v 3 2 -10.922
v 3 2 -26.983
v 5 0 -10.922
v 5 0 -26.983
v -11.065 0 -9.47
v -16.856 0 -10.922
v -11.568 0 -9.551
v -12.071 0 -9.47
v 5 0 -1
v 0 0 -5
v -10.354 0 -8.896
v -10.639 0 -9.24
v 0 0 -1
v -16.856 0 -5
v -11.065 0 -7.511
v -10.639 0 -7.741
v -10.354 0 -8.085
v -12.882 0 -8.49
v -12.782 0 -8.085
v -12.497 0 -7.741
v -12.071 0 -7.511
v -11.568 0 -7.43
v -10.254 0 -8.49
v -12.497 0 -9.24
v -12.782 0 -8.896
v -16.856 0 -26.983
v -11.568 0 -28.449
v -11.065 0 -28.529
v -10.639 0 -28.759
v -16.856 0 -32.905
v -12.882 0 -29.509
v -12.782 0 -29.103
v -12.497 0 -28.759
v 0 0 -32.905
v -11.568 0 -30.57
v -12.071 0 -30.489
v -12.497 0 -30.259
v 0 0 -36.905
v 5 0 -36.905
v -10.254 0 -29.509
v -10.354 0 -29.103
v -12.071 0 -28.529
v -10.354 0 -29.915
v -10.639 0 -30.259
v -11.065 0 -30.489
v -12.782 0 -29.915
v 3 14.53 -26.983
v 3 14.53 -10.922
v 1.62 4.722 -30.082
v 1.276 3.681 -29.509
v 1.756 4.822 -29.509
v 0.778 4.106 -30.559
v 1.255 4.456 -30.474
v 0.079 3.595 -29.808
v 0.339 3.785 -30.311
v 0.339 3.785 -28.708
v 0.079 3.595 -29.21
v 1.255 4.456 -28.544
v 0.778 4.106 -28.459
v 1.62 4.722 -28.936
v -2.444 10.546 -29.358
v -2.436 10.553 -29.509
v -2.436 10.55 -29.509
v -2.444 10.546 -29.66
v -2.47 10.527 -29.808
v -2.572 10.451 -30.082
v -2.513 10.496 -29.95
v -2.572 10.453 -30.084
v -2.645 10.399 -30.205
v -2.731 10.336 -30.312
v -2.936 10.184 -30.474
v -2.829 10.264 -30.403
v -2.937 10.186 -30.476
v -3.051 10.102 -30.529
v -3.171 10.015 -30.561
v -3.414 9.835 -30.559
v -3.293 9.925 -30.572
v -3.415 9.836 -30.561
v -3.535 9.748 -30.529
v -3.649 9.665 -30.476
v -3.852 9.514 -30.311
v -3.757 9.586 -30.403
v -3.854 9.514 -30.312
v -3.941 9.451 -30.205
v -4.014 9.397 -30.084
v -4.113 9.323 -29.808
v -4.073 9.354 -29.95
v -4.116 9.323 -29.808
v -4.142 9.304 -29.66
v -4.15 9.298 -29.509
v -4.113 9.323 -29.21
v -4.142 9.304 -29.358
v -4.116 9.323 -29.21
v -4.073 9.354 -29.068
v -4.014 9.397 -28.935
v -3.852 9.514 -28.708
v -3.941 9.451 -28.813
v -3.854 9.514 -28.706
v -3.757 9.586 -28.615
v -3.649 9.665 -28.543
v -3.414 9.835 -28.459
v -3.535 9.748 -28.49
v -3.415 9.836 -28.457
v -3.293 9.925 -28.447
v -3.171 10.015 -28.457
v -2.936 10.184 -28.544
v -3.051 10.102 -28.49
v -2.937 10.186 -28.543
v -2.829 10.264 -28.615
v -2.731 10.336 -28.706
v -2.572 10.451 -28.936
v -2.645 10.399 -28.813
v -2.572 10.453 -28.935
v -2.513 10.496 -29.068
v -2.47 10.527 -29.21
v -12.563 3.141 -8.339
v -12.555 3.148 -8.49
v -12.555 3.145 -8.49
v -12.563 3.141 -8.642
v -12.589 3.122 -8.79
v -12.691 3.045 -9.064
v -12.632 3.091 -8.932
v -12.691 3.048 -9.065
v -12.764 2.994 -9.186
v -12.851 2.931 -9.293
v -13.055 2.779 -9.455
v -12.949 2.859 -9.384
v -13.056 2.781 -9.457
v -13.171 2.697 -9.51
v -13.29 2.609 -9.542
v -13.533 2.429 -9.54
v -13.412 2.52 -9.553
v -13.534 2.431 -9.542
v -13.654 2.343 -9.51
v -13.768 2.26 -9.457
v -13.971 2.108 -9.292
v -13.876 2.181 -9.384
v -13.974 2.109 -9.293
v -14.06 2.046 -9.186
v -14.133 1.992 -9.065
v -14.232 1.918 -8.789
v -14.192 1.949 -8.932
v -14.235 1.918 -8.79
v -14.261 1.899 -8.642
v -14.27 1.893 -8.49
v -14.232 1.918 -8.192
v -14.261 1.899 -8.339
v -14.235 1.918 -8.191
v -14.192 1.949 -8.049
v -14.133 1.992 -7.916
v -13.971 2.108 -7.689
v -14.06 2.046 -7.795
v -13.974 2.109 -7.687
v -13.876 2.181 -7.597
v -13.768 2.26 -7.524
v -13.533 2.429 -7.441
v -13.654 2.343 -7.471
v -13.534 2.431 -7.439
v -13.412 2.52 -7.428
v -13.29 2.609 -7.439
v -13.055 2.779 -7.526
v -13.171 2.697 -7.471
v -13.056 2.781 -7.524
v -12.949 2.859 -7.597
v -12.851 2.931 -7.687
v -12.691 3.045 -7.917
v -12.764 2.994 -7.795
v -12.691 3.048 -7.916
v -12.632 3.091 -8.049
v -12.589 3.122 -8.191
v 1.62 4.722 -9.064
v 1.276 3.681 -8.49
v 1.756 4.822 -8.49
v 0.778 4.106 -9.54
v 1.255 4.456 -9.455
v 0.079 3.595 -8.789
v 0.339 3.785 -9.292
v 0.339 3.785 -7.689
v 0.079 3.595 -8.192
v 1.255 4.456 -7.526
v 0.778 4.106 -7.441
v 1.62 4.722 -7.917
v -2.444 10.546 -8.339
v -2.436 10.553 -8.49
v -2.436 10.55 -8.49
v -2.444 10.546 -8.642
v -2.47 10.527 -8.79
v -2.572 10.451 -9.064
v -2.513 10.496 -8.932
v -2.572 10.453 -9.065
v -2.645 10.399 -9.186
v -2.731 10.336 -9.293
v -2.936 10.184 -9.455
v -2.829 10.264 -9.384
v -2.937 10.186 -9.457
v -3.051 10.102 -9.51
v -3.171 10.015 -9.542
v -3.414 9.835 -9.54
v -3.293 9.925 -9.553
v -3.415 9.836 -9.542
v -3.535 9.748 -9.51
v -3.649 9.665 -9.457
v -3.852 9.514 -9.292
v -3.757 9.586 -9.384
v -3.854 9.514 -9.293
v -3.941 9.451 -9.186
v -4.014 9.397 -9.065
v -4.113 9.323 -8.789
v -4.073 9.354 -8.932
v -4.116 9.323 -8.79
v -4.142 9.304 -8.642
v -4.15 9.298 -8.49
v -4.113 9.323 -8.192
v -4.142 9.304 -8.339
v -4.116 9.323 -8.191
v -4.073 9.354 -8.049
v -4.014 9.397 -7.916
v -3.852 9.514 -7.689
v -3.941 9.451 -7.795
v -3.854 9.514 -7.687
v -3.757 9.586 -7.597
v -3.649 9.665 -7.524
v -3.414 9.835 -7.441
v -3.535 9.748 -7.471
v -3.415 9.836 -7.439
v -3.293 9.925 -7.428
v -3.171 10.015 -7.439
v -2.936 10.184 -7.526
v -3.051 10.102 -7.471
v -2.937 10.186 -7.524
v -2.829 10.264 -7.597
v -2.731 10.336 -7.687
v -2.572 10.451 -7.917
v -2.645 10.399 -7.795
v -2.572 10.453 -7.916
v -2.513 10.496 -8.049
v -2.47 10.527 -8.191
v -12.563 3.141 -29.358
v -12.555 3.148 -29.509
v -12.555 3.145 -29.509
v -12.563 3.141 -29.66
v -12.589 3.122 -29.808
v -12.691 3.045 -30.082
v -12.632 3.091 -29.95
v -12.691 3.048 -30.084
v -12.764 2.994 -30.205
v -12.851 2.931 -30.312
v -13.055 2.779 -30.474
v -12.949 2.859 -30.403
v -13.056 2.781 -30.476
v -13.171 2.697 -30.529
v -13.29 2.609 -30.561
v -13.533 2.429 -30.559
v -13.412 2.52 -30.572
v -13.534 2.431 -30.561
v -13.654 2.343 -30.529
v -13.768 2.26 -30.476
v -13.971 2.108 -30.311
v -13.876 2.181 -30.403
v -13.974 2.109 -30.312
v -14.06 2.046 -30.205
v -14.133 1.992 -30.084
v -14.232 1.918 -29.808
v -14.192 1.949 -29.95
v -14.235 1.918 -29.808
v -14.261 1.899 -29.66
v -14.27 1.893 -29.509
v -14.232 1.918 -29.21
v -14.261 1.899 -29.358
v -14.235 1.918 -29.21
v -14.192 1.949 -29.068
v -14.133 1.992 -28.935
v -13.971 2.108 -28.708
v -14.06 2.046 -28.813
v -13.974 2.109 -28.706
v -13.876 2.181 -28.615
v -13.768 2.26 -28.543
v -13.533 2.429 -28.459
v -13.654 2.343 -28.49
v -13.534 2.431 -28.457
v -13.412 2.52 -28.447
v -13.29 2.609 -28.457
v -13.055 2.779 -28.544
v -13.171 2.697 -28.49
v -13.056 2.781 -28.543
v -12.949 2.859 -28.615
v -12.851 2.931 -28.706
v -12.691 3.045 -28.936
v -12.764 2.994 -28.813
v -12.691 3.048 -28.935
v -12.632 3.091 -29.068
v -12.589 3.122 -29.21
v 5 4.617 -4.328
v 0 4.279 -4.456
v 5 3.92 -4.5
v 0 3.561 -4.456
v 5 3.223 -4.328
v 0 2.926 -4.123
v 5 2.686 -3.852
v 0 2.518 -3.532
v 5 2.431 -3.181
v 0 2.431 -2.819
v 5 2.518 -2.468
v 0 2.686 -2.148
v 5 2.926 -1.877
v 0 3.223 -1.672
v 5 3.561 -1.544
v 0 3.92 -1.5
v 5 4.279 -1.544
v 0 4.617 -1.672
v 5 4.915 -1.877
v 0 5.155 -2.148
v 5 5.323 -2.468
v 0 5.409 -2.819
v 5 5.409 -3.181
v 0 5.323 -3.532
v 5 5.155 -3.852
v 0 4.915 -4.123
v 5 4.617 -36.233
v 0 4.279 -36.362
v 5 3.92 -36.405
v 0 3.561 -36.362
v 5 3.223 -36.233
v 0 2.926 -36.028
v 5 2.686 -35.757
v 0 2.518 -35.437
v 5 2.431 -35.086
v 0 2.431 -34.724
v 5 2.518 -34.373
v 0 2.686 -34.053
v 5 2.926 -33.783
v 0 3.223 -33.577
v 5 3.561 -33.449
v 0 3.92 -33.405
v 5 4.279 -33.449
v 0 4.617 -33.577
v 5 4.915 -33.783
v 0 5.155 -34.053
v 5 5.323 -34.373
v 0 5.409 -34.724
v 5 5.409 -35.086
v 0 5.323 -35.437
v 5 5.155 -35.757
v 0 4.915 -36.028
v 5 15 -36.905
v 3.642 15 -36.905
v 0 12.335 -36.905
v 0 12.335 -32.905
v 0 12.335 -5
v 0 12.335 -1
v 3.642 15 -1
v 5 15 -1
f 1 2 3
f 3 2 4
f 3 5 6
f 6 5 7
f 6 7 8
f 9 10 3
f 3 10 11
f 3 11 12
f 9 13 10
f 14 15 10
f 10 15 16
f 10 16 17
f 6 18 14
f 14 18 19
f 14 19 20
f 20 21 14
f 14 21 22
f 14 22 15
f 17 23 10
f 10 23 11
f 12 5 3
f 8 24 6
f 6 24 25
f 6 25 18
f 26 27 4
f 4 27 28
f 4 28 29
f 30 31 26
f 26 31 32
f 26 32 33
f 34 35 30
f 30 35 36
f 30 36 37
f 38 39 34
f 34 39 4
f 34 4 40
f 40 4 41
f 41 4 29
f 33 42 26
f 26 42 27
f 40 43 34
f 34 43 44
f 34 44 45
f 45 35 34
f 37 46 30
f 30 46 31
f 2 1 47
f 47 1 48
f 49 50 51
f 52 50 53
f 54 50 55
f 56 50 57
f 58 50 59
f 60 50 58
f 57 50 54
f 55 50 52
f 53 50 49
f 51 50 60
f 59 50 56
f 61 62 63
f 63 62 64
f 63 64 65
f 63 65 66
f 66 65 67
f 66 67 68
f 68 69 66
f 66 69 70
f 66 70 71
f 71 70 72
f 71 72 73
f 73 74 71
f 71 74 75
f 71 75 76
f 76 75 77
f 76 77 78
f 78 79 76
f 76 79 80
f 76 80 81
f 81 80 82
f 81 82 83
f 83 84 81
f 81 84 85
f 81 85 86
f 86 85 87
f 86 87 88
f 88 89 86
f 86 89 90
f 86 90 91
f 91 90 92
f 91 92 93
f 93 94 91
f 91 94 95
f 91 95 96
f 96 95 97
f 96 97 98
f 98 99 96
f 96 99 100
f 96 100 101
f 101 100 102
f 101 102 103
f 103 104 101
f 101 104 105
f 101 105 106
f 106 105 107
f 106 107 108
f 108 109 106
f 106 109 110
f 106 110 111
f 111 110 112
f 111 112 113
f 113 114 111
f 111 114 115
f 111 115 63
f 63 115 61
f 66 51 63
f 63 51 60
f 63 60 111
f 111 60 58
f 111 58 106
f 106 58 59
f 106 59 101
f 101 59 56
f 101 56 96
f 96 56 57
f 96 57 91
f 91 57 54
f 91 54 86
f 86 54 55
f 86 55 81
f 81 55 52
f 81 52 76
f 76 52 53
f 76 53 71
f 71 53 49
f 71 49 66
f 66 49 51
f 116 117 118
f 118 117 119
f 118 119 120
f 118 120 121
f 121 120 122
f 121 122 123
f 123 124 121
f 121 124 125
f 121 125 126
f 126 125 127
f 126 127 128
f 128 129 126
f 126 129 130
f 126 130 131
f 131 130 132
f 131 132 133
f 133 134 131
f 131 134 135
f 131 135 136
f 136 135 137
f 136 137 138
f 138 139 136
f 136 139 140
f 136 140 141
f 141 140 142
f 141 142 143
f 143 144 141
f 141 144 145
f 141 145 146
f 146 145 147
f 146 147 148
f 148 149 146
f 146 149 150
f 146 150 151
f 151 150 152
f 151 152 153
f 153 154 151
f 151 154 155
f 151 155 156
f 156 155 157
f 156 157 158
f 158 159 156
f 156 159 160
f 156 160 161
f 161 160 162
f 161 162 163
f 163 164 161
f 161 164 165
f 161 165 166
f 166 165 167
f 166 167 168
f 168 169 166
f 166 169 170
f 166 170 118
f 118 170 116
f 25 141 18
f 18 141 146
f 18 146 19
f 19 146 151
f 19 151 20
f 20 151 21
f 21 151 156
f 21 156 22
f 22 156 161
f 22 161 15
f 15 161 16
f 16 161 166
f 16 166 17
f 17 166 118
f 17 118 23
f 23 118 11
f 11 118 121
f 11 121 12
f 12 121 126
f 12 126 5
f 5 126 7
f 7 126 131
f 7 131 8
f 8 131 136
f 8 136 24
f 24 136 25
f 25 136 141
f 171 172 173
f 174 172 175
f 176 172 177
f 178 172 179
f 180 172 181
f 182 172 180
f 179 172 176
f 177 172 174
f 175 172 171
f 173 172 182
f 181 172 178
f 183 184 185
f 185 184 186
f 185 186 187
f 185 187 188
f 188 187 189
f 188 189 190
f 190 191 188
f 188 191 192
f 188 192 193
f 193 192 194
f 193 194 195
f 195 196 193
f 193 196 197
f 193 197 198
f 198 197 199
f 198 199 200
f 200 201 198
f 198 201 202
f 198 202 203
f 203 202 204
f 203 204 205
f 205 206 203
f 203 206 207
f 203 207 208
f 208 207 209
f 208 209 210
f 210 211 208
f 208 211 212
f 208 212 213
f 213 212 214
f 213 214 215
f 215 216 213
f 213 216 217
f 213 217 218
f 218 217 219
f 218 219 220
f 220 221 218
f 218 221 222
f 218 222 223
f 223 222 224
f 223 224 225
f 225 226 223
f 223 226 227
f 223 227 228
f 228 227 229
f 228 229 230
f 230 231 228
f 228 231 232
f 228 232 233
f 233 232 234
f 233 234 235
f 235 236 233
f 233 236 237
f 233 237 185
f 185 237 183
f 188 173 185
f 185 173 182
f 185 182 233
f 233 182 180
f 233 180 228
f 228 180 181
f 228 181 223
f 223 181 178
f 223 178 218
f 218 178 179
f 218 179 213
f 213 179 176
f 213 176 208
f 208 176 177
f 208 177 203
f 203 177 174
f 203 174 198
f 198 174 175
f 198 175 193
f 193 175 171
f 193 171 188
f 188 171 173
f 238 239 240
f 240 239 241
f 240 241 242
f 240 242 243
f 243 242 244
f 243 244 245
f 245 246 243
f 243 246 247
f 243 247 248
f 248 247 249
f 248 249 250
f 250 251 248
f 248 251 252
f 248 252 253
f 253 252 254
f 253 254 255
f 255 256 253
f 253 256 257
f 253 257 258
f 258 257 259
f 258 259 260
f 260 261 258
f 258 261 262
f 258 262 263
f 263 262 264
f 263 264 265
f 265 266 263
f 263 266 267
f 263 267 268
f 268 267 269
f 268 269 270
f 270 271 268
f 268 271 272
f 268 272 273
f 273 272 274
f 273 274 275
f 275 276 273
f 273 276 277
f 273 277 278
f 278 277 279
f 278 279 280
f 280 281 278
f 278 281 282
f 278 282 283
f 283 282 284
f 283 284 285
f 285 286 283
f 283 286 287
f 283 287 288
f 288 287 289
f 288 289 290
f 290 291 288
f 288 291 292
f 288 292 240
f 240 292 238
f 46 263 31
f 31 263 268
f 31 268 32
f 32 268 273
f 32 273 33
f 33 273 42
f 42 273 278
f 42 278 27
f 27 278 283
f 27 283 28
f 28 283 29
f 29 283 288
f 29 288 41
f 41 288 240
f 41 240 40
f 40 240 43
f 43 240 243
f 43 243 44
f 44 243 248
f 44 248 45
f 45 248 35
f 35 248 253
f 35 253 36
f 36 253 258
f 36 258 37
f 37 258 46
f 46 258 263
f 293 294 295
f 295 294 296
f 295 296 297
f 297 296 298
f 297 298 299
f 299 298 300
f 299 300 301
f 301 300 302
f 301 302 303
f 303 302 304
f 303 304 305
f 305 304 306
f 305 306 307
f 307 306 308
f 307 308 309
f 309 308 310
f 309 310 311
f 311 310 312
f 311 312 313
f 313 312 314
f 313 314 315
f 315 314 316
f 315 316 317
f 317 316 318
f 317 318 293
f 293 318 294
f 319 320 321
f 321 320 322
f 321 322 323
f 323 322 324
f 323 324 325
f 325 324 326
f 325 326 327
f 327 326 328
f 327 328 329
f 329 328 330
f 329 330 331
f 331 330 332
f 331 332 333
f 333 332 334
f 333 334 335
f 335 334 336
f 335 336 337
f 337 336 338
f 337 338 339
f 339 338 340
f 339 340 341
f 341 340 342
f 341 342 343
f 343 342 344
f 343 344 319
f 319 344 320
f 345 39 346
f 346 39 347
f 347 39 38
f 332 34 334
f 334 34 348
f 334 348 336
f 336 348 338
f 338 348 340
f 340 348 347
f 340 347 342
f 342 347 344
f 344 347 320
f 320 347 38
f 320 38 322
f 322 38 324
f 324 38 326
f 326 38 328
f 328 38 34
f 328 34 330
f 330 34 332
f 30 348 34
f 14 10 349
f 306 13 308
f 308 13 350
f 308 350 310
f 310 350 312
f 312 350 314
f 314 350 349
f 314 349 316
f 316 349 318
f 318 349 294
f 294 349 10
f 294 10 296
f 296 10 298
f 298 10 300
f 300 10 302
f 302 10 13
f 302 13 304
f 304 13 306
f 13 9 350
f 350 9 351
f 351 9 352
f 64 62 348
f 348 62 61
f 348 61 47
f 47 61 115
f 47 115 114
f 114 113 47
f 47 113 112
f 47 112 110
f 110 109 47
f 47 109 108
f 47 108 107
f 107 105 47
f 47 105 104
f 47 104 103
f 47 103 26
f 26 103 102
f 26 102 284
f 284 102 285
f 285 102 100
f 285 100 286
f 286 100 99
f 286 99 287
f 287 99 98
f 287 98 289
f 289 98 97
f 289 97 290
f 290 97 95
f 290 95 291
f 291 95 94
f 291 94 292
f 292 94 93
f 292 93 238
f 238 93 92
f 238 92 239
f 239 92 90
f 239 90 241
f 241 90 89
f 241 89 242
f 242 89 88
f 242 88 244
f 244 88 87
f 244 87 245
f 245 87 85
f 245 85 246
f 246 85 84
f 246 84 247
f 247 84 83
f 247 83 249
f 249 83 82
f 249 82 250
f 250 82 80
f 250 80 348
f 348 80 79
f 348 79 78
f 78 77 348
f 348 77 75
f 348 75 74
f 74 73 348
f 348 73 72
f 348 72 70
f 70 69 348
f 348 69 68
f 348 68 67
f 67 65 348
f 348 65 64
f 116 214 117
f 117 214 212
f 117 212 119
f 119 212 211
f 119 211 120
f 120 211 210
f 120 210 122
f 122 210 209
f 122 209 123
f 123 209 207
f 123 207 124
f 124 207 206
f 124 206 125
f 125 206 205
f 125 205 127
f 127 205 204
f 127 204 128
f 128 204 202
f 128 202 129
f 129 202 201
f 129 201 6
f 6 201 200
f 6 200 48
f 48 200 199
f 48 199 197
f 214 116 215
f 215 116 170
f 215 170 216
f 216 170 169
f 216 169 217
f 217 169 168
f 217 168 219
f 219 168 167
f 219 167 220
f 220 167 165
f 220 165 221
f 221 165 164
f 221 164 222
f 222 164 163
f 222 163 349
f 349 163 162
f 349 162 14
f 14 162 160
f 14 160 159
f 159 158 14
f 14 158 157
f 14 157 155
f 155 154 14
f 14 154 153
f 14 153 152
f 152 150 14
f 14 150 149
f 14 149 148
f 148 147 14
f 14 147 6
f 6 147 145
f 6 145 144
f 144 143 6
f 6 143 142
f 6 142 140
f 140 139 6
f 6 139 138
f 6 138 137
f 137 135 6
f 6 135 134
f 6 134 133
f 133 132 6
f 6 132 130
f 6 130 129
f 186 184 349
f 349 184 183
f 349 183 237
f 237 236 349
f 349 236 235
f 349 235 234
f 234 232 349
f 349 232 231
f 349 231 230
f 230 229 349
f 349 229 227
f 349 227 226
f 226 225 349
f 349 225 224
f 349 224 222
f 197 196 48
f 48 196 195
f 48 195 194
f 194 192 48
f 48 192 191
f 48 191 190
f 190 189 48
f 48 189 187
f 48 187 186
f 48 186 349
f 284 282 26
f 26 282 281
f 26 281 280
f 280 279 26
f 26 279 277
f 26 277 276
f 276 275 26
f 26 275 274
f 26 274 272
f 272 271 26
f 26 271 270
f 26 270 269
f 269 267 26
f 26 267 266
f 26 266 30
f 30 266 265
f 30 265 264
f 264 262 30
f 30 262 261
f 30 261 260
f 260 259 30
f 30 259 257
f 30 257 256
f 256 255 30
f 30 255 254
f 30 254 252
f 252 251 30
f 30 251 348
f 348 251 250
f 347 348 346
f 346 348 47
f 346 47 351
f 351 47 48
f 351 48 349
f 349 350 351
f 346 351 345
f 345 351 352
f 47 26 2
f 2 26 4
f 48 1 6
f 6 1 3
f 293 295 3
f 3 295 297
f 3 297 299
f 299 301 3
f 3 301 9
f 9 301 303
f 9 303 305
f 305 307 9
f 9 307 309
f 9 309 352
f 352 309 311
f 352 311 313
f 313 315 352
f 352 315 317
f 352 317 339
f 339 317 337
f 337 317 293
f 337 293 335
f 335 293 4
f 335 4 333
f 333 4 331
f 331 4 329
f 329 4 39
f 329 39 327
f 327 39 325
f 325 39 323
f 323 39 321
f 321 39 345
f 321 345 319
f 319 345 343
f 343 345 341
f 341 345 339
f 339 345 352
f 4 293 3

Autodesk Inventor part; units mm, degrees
ref_plane "YZ Plane" through (0, 0, 0) normal (1, 0, 0) x (0, 1, 0)
ref_plane "XZ Plane" through (0, 0, 0) normal (0, 1, 0) x (-1, 0, 0)
sketch "Sketch2" plane through (0, 0, 0) normal (0, 1, 0) x (-1, 0, 0)
  line L0 (0, 0) -> (23.273, 0)
  line L1 (23.273, 0) -> (23.273, -37.9053)
  line L2 (23.273, -37.9053) -> (0, -37.9053)
  line L3 (0, -37.9053) -> (0, 0)
  line L4 (26.75, 0) -> (-5, 0)
  line L5 (-5, 0) -> (-5, -37.9053)
  line L6 (-5, -37.9053) -> (26.75, -37.9053)
  line L7 (26.75, -37.9053) -> (26.75, 0)
  point P0 (0, -37.9053)
  dimension "d21" = 37.9053
  dimension "d22" = 23.273
  dimension "d36" = 5
  dimension "d37" = 31.75
extrude "Extrusion1" add sketch "Sketch2" along normal blind 15
sketch "Sketch6" plane through (-26.75, 0, 0) normal (0, 0, 1) x (1, 0, 0)
  line L0 (31.75, 0) -> (31.75, 15) projected
  line L1 (31.75, 0) -> (31.75, 15)
  line L2 (31.75, 0) -> (0, 0) projected
  line L3 (30.3918, 0) -> (30.3918, 15)
  line L4 (31.75, 15) -> (0, 15) projected
  line L5 (30.3918, 15) -> (55.3918, 15) construction
  line L6 (0, 0) -> (0, 15) projected
  line L7 (0, 0) -> (0, 0.5)
  line L8 (30.3918, 15) -> (9.894, 0)
  point P0 (26.75, 0)
  dimension "d38" = 1.3582
  dimension "d41" = 0.5
  dimension "d96" = 25.4
  dimension "d97" = 53.804
extrude "Extrusion2" cut sketch "Sketch6" against normal up to surface (37.9053 mm away) contours L8 L2 L6 L4
sketch "Sketch8" plane through (0, 0, 0) normal (0, -1, 0) x (1, 0, 0)
  line L0 (-26.75, -37.9053) -> (-26.75, 0) projected
  line L1 (-26.75, -10.922) -> (3, -10.922)
  line L2 (3, -10.922) -> (3, -26.9833)
  line L3 (3, -26.9833) -> (-26.75, -26.9833)
  line L4 (-26.75, -26.9833) -> (-26.75, -10.922)
  line L5 (-26.75, 0) -> (5, 0) projected
  line L6 (5, -37.9053) -> (-26.75, -37.9053) projected
  line L7 (5, 0) -> (5, -37.9053) projected
  point P0 (0, 0)
  point P1 (-26.75, -26.9833)
  dimension "d44" = 10.922
  dimension "d45" = 10.922
  dimension "d46" = 2
extrude "Extrusion3" cut sketch "Sketch8" against normal blind 25.4 contours L0 L1 L2 L3
ref_plane "Work Plane1" through (4.3209, 15, 0) normal (0, 1, 0) x (1, 0, 0)
sketch "Sketch12" plane through (0, 0, 0) normal (0, -1, 0) x (1, 0, 0)
  line L0 (3.6418, 0) -> (-26.75, 0) projected
  line L1 (-26.75, 0) -> (0, 0)
  line L2 (0, 0) -> (0, -5)
  line L3 (0, -5) -> (-26.75, -5)
  line L4 (-26.75, -5) -> (-26.75, 0)
  line L5 (-26.75, -37.9053) -> (0, -37.9053)
  line L6 (0, -37.9053) -> (0, -32.9053)
  line L7 (0, -32.9053) -> (-26.75, -32.9053)
  line L8 (-26.75, -32.9053) -> (-26.75, -37.9053)
  line L9 (5, 0) -> (0, 0)
  line L10 (0, 0) -> (0, -1)
  line L11 (0, -1) -> (5, -1)
  line L12 (5, -1) -> (5, 0)
  line L13 (5, 0) -> (5, -37.9053) projected
  line L14 (5, -37.9053) -> (0, -37.9053)
  line L15 (0, -37.9053) -> (0, -36.9053)
  line L16 (0, -36.9053) -> (5, -36.9053)
  line L17 (5, -36.9053) -> (5, -37.9053)
  line L18 (5, -37.9053) -> (-26.75, -37.9053) projected
  point P0 (0, -37.9053)
  dimension "d69" = 5
  dimension "d70" = 5
  dimension "d73" = 1
  dimension "d74" = 1
  dimension "d75" = 0
extrude "Extrusion6" cut sketch "Sketch12" along normal through all both and the other way through all
sketch "Sketch13" plane through (0, 0, -36.9053) normal (-1, 0, 0) x (0, 0, 1)
  circle A0 centre (2, 3.9204) radius 1.5
  circle A1 centre (33.9053, 3.9204) radius 1.5
  line L0 (35.9053, 0) -> (31.9053, 0) projected
  line L1 (31.9053, 7.8408) -> (35.9053, 7.8408) projected
  line L2 (35.9053, 12.335) -> (35.9053, 0) projected
  line L3 (31.9053, 2) -> (31.9053, 7.8408) projected
  line L4 (0, 0) -> (0, 12.335) projected
  line L5 (0, 7.8408) -> (4, 7.8408) projected
  line L6 (4, 0) -> (0, 0) projected
  point P0 (36.9053, 0)
  point P1 (35.9053, 8.636)
  point P2 (0, 8.636)
  dimension "d80" = 3
  dimension "d81" = 3
  dimension "d82" = 7.8408
  dimension "d83" = 3.9204
  dimension "d84" = 4
  dimension "d85" = 2
  dimension "d86" = 2
  dimension "d87" = 3.9204
  dimension "d88" = 31.9053
  dimension "d148" = 3.9204
extrude "Extrusion7" cut sketch "Sketch13" against normal blind 25.4
sketch "Sketch15" plane through (3, 14.5303, -10.922) normal (-0.5905512, 0.8070002, 0) x (0.8070002, 0.5905512, 0)
  circle A0 centre (-20.3372, -2.4315) radius 1.1146
  circle A1 centre (-7.798, 18.5871) radius 1.229
  line L0 (-20.3372, -2.4315) -> (-20.3372, 18.5871)
  line L1 (-20.3372, 18.5871) -> (-7.798, 18.5871)
  line L2 (-7.798, 18.5871) -> (-7.798, -2.4315)
  line L3 (-7.798, -2.4315) -> (-20.3372, -2.4315)
  line L4 (-12.87, 2.62) -> (-12.87, 13.4413)
  line L5 (-12.87, 13.4413) -> (-2.4234, 13.4413)
  line L6 (-2.4234, 13.4413) -> (-2.4234, 2.62)
  line L7 (-2.4234, 2.62) -> (-12.87, 2.62)
  line L8 (-22.1086, -4.4694) -> (-22.1086, 20.5306)
  line L9 (-22.1086, 20.5306) -> (1.8914, 20.5306)
  line L10 (1.8914, 20.5306) -> (1.8914, -4.4694)
  line L11 (1.8914, -4.4694) -> (-22.1086, -4.4694)
  line L12 (-3.7175, 21.9833) -> (-24.6047, 21.9833) projected
  line L13 (-24.6047, -5.922) -> (-3.7175, -5.922) projected
  circle A2 centre (-20.3372, 18.5871) radius 1.1245
  line L14 (0, 16.0613) -> (0, 0) projected
  line L15 (1.8914, -9.922) -> (1.8914, 25.9833) projected
  circle A3 centre (-7.798, -2.4315) radius 1.1245
  point P0 (-11.0019, -10.922)
  dimension "d107" = 21.0186
  dimension "d108" = 12.5392
  dimension "d110" = 25
  dimension "d111" = 24
  dimension "d112" = 4.3148
  dimension "d113" = 9.2386
  dimension "d114" = 7.0893
  dimension "d115" = 7.0893
  dimension "d117" = 1.9436
  dimension "d118" = 2.0378
  dimension "d119" = 1.7714
  dimension "d120" = 9.6893
  dimension "d122" = 1.4526
  dimension "d123" = 1.4526
  dimension "d124" = 2.249
  dimension "d133" = 0
  dimension "d134" = 2.249
hole "Hole3" at (-13.4121, 2.5202, -8.4905) at (-3.293, 9.9252, -8.4905) at (-3.293, 9.9252, -29.5091) at (-13.4121, 2.5202, -29.5091) direction (0.5905512, -0.8070002, 0) diameter 2.1211 depth 7.1 tip angle 118 countersink diameter 2.125 countersink angle 90 thread size "M2.5x0.35" class "6H" standard "ANSI Metric M Profile"
chamfer "Chamfer3" distance 2 distance2 2 1 edges at (3, 0, -18.9526) measured on face at (-2.4276, 0, -8.2115)
equation "\"d83\" = 0.5 * d82"
equation "\"d85\" = 0.5 * d84"
equation "\"d86\" = d85"
equation "\"d87\" = d83"
equation "\"d115\" = d114"
equation "\"d122\" = d123"
properties part number "Camera Angle"
